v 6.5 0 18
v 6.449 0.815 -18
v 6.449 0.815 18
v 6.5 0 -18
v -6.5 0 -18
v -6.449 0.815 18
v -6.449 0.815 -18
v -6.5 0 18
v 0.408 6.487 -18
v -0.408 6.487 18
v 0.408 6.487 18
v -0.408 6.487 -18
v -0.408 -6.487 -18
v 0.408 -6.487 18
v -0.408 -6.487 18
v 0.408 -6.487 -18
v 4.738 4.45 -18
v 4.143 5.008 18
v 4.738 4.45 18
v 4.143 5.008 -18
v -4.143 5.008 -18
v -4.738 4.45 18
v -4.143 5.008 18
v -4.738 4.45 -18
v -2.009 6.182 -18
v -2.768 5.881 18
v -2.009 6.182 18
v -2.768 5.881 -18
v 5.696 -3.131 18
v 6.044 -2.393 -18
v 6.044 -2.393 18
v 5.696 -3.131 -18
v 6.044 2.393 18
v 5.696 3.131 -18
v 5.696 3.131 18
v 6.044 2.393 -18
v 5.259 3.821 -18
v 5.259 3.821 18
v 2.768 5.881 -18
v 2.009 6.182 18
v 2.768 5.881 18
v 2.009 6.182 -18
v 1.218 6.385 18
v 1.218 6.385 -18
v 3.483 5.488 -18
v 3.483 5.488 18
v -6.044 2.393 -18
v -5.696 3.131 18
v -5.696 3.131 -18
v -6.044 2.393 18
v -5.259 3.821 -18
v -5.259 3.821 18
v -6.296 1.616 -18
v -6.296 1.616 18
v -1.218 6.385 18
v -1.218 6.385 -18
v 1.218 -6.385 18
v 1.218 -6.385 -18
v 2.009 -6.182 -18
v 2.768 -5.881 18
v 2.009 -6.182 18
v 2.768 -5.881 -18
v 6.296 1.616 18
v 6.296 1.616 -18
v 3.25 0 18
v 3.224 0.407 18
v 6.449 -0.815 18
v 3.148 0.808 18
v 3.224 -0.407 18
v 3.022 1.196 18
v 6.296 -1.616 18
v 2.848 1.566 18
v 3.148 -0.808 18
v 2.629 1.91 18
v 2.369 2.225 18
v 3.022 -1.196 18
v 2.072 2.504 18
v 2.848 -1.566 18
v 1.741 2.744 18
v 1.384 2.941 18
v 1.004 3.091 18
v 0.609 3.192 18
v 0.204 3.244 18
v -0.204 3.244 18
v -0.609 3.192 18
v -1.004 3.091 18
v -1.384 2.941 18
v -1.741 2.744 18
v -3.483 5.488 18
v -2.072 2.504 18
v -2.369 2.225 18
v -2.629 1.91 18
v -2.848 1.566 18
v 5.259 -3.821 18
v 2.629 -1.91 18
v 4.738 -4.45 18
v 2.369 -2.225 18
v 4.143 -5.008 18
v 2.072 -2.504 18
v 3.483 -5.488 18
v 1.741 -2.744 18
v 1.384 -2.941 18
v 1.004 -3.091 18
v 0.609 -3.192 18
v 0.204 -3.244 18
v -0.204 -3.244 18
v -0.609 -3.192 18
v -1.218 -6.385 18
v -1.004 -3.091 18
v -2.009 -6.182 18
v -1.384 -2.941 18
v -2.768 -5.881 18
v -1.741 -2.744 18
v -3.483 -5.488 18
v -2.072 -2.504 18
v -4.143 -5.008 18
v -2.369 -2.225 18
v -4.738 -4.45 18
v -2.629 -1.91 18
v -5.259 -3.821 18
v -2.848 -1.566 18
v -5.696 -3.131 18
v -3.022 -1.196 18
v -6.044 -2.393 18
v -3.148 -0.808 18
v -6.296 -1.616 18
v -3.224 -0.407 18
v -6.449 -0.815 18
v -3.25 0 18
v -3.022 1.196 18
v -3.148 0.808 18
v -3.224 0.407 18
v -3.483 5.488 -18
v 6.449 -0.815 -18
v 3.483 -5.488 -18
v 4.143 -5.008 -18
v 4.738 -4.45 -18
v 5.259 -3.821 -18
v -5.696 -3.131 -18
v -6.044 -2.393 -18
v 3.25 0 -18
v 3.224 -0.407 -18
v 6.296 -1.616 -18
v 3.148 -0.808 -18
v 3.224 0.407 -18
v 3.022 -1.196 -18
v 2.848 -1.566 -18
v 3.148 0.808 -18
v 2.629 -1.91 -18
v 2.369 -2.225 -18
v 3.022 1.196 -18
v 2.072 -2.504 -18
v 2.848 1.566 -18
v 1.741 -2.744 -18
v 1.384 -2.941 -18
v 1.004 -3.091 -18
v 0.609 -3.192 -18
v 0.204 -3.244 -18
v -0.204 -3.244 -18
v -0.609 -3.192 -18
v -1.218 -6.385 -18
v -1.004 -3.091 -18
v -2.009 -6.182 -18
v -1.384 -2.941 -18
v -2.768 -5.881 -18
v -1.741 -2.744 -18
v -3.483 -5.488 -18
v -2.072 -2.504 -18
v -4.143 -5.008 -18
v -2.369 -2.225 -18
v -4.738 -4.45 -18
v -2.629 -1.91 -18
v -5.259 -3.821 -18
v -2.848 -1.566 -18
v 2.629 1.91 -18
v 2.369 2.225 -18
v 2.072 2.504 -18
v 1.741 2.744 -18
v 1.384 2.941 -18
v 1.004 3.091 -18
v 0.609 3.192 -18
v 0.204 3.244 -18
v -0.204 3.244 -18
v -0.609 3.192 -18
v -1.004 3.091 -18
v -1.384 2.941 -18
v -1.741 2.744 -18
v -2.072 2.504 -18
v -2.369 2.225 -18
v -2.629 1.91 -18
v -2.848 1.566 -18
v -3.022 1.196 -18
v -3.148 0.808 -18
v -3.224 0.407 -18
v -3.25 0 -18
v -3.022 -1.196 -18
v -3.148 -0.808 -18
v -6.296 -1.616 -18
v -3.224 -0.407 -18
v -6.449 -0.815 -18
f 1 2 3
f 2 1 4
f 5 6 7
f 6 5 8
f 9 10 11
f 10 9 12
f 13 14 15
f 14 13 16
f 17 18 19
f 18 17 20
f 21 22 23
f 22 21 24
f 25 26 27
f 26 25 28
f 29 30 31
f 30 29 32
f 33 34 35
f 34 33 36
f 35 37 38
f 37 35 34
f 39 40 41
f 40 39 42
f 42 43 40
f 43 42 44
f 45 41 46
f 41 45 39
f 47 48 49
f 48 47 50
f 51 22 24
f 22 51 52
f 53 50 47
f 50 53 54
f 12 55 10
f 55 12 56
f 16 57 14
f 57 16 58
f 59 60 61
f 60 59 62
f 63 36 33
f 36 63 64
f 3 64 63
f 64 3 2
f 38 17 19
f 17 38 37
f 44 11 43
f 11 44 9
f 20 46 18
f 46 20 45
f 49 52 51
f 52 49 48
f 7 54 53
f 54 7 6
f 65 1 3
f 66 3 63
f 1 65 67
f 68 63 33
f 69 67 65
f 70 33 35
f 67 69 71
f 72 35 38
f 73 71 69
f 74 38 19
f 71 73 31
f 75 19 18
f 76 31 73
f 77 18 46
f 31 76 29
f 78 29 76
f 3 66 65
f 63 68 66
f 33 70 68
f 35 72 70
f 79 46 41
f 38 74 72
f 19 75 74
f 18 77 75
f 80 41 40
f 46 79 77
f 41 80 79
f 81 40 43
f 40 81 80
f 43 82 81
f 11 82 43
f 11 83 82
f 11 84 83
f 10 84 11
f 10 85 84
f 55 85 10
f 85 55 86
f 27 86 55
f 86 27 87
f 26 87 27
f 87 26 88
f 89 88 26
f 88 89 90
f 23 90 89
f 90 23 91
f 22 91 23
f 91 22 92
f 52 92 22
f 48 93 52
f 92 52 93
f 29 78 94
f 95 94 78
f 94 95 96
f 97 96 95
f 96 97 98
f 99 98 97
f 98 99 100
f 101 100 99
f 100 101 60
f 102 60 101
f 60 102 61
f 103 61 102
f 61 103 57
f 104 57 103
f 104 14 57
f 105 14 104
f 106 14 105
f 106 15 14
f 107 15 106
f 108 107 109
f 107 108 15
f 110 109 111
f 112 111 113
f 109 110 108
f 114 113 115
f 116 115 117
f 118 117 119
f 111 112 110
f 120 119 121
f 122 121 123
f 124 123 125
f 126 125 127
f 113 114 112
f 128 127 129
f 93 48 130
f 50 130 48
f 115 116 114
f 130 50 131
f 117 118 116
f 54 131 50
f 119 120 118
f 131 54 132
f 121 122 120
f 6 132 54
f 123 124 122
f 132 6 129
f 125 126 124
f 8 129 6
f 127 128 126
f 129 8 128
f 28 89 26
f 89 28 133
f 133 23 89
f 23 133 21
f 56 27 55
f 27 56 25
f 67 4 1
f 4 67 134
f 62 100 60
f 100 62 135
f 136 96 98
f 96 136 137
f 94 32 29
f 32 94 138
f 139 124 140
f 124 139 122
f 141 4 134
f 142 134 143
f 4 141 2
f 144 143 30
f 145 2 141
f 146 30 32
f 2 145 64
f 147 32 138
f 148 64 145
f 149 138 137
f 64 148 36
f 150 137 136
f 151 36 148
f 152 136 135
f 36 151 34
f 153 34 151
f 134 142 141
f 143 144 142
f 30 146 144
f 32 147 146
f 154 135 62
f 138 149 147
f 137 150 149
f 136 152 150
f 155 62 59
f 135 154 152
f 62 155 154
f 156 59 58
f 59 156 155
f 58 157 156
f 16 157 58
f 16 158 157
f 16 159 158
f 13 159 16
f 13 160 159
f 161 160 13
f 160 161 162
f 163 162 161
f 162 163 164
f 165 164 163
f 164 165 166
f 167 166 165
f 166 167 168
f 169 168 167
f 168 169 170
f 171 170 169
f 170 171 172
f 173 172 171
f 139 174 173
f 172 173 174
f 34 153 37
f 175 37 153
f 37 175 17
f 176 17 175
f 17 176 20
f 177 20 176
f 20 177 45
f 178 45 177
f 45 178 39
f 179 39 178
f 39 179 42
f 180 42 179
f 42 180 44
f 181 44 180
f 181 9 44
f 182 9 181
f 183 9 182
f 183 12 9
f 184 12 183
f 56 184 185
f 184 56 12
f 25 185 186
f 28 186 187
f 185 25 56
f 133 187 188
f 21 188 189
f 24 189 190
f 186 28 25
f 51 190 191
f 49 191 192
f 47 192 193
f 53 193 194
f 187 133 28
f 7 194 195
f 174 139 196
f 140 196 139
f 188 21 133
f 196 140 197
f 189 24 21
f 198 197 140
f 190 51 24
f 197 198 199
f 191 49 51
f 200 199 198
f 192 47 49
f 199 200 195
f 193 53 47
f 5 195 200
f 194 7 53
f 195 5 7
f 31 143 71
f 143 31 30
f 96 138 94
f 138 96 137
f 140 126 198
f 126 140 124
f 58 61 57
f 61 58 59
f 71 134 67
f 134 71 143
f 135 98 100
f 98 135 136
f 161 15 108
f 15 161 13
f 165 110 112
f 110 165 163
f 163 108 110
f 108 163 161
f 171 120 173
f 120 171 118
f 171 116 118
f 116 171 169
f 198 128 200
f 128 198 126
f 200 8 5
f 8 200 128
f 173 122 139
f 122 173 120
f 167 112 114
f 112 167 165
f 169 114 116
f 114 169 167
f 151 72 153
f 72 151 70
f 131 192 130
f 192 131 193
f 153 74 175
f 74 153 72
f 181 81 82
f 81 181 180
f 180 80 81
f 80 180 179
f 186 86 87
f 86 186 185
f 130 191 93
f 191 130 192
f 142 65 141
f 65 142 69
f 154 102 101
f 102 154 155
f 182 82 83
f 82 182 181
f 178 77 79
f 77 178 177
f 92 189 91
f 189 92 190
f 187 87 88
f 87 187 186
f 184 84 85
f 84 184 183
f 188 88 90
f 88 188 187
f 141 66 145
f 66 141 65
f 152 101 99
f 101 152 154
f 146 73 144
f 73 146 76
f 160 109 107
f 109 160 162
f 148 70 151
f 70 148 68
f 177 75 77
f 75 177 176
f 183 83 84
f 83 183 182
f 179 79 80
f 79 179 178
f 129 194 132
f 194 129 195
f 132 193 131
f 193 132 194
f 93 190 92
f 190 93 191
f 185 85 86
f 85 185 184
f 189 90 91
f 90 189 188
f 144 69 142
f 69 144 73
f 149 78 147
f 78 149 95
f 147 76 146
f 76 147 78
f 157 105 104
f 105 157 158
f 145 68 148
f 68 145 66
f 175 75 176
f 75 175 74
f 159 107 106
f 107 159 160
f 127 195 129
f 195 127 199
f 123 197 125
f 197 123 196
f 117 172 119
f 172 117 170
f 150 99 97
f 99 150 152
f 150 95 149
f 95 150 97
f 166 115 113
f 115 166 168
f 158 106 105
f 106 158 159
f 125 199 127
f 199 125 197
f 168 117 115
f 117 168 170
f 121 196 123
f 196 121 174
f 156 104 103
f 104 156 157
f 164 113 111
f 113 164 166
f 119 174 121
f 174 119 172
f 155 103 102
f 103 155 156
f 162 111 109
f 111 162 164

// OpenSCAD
$fn = 50;


difference() {
	union() {
		translate(v = [0, 0, -18.0000000000]) {
			cylinder(h = 36, r = 6.5000000000);
		}
	}
	union() {
		translate(v = [0, 0, -100.0000000000]) {
			cylinder(h = 200, r = 3.2500000000);
		}
	}
}
